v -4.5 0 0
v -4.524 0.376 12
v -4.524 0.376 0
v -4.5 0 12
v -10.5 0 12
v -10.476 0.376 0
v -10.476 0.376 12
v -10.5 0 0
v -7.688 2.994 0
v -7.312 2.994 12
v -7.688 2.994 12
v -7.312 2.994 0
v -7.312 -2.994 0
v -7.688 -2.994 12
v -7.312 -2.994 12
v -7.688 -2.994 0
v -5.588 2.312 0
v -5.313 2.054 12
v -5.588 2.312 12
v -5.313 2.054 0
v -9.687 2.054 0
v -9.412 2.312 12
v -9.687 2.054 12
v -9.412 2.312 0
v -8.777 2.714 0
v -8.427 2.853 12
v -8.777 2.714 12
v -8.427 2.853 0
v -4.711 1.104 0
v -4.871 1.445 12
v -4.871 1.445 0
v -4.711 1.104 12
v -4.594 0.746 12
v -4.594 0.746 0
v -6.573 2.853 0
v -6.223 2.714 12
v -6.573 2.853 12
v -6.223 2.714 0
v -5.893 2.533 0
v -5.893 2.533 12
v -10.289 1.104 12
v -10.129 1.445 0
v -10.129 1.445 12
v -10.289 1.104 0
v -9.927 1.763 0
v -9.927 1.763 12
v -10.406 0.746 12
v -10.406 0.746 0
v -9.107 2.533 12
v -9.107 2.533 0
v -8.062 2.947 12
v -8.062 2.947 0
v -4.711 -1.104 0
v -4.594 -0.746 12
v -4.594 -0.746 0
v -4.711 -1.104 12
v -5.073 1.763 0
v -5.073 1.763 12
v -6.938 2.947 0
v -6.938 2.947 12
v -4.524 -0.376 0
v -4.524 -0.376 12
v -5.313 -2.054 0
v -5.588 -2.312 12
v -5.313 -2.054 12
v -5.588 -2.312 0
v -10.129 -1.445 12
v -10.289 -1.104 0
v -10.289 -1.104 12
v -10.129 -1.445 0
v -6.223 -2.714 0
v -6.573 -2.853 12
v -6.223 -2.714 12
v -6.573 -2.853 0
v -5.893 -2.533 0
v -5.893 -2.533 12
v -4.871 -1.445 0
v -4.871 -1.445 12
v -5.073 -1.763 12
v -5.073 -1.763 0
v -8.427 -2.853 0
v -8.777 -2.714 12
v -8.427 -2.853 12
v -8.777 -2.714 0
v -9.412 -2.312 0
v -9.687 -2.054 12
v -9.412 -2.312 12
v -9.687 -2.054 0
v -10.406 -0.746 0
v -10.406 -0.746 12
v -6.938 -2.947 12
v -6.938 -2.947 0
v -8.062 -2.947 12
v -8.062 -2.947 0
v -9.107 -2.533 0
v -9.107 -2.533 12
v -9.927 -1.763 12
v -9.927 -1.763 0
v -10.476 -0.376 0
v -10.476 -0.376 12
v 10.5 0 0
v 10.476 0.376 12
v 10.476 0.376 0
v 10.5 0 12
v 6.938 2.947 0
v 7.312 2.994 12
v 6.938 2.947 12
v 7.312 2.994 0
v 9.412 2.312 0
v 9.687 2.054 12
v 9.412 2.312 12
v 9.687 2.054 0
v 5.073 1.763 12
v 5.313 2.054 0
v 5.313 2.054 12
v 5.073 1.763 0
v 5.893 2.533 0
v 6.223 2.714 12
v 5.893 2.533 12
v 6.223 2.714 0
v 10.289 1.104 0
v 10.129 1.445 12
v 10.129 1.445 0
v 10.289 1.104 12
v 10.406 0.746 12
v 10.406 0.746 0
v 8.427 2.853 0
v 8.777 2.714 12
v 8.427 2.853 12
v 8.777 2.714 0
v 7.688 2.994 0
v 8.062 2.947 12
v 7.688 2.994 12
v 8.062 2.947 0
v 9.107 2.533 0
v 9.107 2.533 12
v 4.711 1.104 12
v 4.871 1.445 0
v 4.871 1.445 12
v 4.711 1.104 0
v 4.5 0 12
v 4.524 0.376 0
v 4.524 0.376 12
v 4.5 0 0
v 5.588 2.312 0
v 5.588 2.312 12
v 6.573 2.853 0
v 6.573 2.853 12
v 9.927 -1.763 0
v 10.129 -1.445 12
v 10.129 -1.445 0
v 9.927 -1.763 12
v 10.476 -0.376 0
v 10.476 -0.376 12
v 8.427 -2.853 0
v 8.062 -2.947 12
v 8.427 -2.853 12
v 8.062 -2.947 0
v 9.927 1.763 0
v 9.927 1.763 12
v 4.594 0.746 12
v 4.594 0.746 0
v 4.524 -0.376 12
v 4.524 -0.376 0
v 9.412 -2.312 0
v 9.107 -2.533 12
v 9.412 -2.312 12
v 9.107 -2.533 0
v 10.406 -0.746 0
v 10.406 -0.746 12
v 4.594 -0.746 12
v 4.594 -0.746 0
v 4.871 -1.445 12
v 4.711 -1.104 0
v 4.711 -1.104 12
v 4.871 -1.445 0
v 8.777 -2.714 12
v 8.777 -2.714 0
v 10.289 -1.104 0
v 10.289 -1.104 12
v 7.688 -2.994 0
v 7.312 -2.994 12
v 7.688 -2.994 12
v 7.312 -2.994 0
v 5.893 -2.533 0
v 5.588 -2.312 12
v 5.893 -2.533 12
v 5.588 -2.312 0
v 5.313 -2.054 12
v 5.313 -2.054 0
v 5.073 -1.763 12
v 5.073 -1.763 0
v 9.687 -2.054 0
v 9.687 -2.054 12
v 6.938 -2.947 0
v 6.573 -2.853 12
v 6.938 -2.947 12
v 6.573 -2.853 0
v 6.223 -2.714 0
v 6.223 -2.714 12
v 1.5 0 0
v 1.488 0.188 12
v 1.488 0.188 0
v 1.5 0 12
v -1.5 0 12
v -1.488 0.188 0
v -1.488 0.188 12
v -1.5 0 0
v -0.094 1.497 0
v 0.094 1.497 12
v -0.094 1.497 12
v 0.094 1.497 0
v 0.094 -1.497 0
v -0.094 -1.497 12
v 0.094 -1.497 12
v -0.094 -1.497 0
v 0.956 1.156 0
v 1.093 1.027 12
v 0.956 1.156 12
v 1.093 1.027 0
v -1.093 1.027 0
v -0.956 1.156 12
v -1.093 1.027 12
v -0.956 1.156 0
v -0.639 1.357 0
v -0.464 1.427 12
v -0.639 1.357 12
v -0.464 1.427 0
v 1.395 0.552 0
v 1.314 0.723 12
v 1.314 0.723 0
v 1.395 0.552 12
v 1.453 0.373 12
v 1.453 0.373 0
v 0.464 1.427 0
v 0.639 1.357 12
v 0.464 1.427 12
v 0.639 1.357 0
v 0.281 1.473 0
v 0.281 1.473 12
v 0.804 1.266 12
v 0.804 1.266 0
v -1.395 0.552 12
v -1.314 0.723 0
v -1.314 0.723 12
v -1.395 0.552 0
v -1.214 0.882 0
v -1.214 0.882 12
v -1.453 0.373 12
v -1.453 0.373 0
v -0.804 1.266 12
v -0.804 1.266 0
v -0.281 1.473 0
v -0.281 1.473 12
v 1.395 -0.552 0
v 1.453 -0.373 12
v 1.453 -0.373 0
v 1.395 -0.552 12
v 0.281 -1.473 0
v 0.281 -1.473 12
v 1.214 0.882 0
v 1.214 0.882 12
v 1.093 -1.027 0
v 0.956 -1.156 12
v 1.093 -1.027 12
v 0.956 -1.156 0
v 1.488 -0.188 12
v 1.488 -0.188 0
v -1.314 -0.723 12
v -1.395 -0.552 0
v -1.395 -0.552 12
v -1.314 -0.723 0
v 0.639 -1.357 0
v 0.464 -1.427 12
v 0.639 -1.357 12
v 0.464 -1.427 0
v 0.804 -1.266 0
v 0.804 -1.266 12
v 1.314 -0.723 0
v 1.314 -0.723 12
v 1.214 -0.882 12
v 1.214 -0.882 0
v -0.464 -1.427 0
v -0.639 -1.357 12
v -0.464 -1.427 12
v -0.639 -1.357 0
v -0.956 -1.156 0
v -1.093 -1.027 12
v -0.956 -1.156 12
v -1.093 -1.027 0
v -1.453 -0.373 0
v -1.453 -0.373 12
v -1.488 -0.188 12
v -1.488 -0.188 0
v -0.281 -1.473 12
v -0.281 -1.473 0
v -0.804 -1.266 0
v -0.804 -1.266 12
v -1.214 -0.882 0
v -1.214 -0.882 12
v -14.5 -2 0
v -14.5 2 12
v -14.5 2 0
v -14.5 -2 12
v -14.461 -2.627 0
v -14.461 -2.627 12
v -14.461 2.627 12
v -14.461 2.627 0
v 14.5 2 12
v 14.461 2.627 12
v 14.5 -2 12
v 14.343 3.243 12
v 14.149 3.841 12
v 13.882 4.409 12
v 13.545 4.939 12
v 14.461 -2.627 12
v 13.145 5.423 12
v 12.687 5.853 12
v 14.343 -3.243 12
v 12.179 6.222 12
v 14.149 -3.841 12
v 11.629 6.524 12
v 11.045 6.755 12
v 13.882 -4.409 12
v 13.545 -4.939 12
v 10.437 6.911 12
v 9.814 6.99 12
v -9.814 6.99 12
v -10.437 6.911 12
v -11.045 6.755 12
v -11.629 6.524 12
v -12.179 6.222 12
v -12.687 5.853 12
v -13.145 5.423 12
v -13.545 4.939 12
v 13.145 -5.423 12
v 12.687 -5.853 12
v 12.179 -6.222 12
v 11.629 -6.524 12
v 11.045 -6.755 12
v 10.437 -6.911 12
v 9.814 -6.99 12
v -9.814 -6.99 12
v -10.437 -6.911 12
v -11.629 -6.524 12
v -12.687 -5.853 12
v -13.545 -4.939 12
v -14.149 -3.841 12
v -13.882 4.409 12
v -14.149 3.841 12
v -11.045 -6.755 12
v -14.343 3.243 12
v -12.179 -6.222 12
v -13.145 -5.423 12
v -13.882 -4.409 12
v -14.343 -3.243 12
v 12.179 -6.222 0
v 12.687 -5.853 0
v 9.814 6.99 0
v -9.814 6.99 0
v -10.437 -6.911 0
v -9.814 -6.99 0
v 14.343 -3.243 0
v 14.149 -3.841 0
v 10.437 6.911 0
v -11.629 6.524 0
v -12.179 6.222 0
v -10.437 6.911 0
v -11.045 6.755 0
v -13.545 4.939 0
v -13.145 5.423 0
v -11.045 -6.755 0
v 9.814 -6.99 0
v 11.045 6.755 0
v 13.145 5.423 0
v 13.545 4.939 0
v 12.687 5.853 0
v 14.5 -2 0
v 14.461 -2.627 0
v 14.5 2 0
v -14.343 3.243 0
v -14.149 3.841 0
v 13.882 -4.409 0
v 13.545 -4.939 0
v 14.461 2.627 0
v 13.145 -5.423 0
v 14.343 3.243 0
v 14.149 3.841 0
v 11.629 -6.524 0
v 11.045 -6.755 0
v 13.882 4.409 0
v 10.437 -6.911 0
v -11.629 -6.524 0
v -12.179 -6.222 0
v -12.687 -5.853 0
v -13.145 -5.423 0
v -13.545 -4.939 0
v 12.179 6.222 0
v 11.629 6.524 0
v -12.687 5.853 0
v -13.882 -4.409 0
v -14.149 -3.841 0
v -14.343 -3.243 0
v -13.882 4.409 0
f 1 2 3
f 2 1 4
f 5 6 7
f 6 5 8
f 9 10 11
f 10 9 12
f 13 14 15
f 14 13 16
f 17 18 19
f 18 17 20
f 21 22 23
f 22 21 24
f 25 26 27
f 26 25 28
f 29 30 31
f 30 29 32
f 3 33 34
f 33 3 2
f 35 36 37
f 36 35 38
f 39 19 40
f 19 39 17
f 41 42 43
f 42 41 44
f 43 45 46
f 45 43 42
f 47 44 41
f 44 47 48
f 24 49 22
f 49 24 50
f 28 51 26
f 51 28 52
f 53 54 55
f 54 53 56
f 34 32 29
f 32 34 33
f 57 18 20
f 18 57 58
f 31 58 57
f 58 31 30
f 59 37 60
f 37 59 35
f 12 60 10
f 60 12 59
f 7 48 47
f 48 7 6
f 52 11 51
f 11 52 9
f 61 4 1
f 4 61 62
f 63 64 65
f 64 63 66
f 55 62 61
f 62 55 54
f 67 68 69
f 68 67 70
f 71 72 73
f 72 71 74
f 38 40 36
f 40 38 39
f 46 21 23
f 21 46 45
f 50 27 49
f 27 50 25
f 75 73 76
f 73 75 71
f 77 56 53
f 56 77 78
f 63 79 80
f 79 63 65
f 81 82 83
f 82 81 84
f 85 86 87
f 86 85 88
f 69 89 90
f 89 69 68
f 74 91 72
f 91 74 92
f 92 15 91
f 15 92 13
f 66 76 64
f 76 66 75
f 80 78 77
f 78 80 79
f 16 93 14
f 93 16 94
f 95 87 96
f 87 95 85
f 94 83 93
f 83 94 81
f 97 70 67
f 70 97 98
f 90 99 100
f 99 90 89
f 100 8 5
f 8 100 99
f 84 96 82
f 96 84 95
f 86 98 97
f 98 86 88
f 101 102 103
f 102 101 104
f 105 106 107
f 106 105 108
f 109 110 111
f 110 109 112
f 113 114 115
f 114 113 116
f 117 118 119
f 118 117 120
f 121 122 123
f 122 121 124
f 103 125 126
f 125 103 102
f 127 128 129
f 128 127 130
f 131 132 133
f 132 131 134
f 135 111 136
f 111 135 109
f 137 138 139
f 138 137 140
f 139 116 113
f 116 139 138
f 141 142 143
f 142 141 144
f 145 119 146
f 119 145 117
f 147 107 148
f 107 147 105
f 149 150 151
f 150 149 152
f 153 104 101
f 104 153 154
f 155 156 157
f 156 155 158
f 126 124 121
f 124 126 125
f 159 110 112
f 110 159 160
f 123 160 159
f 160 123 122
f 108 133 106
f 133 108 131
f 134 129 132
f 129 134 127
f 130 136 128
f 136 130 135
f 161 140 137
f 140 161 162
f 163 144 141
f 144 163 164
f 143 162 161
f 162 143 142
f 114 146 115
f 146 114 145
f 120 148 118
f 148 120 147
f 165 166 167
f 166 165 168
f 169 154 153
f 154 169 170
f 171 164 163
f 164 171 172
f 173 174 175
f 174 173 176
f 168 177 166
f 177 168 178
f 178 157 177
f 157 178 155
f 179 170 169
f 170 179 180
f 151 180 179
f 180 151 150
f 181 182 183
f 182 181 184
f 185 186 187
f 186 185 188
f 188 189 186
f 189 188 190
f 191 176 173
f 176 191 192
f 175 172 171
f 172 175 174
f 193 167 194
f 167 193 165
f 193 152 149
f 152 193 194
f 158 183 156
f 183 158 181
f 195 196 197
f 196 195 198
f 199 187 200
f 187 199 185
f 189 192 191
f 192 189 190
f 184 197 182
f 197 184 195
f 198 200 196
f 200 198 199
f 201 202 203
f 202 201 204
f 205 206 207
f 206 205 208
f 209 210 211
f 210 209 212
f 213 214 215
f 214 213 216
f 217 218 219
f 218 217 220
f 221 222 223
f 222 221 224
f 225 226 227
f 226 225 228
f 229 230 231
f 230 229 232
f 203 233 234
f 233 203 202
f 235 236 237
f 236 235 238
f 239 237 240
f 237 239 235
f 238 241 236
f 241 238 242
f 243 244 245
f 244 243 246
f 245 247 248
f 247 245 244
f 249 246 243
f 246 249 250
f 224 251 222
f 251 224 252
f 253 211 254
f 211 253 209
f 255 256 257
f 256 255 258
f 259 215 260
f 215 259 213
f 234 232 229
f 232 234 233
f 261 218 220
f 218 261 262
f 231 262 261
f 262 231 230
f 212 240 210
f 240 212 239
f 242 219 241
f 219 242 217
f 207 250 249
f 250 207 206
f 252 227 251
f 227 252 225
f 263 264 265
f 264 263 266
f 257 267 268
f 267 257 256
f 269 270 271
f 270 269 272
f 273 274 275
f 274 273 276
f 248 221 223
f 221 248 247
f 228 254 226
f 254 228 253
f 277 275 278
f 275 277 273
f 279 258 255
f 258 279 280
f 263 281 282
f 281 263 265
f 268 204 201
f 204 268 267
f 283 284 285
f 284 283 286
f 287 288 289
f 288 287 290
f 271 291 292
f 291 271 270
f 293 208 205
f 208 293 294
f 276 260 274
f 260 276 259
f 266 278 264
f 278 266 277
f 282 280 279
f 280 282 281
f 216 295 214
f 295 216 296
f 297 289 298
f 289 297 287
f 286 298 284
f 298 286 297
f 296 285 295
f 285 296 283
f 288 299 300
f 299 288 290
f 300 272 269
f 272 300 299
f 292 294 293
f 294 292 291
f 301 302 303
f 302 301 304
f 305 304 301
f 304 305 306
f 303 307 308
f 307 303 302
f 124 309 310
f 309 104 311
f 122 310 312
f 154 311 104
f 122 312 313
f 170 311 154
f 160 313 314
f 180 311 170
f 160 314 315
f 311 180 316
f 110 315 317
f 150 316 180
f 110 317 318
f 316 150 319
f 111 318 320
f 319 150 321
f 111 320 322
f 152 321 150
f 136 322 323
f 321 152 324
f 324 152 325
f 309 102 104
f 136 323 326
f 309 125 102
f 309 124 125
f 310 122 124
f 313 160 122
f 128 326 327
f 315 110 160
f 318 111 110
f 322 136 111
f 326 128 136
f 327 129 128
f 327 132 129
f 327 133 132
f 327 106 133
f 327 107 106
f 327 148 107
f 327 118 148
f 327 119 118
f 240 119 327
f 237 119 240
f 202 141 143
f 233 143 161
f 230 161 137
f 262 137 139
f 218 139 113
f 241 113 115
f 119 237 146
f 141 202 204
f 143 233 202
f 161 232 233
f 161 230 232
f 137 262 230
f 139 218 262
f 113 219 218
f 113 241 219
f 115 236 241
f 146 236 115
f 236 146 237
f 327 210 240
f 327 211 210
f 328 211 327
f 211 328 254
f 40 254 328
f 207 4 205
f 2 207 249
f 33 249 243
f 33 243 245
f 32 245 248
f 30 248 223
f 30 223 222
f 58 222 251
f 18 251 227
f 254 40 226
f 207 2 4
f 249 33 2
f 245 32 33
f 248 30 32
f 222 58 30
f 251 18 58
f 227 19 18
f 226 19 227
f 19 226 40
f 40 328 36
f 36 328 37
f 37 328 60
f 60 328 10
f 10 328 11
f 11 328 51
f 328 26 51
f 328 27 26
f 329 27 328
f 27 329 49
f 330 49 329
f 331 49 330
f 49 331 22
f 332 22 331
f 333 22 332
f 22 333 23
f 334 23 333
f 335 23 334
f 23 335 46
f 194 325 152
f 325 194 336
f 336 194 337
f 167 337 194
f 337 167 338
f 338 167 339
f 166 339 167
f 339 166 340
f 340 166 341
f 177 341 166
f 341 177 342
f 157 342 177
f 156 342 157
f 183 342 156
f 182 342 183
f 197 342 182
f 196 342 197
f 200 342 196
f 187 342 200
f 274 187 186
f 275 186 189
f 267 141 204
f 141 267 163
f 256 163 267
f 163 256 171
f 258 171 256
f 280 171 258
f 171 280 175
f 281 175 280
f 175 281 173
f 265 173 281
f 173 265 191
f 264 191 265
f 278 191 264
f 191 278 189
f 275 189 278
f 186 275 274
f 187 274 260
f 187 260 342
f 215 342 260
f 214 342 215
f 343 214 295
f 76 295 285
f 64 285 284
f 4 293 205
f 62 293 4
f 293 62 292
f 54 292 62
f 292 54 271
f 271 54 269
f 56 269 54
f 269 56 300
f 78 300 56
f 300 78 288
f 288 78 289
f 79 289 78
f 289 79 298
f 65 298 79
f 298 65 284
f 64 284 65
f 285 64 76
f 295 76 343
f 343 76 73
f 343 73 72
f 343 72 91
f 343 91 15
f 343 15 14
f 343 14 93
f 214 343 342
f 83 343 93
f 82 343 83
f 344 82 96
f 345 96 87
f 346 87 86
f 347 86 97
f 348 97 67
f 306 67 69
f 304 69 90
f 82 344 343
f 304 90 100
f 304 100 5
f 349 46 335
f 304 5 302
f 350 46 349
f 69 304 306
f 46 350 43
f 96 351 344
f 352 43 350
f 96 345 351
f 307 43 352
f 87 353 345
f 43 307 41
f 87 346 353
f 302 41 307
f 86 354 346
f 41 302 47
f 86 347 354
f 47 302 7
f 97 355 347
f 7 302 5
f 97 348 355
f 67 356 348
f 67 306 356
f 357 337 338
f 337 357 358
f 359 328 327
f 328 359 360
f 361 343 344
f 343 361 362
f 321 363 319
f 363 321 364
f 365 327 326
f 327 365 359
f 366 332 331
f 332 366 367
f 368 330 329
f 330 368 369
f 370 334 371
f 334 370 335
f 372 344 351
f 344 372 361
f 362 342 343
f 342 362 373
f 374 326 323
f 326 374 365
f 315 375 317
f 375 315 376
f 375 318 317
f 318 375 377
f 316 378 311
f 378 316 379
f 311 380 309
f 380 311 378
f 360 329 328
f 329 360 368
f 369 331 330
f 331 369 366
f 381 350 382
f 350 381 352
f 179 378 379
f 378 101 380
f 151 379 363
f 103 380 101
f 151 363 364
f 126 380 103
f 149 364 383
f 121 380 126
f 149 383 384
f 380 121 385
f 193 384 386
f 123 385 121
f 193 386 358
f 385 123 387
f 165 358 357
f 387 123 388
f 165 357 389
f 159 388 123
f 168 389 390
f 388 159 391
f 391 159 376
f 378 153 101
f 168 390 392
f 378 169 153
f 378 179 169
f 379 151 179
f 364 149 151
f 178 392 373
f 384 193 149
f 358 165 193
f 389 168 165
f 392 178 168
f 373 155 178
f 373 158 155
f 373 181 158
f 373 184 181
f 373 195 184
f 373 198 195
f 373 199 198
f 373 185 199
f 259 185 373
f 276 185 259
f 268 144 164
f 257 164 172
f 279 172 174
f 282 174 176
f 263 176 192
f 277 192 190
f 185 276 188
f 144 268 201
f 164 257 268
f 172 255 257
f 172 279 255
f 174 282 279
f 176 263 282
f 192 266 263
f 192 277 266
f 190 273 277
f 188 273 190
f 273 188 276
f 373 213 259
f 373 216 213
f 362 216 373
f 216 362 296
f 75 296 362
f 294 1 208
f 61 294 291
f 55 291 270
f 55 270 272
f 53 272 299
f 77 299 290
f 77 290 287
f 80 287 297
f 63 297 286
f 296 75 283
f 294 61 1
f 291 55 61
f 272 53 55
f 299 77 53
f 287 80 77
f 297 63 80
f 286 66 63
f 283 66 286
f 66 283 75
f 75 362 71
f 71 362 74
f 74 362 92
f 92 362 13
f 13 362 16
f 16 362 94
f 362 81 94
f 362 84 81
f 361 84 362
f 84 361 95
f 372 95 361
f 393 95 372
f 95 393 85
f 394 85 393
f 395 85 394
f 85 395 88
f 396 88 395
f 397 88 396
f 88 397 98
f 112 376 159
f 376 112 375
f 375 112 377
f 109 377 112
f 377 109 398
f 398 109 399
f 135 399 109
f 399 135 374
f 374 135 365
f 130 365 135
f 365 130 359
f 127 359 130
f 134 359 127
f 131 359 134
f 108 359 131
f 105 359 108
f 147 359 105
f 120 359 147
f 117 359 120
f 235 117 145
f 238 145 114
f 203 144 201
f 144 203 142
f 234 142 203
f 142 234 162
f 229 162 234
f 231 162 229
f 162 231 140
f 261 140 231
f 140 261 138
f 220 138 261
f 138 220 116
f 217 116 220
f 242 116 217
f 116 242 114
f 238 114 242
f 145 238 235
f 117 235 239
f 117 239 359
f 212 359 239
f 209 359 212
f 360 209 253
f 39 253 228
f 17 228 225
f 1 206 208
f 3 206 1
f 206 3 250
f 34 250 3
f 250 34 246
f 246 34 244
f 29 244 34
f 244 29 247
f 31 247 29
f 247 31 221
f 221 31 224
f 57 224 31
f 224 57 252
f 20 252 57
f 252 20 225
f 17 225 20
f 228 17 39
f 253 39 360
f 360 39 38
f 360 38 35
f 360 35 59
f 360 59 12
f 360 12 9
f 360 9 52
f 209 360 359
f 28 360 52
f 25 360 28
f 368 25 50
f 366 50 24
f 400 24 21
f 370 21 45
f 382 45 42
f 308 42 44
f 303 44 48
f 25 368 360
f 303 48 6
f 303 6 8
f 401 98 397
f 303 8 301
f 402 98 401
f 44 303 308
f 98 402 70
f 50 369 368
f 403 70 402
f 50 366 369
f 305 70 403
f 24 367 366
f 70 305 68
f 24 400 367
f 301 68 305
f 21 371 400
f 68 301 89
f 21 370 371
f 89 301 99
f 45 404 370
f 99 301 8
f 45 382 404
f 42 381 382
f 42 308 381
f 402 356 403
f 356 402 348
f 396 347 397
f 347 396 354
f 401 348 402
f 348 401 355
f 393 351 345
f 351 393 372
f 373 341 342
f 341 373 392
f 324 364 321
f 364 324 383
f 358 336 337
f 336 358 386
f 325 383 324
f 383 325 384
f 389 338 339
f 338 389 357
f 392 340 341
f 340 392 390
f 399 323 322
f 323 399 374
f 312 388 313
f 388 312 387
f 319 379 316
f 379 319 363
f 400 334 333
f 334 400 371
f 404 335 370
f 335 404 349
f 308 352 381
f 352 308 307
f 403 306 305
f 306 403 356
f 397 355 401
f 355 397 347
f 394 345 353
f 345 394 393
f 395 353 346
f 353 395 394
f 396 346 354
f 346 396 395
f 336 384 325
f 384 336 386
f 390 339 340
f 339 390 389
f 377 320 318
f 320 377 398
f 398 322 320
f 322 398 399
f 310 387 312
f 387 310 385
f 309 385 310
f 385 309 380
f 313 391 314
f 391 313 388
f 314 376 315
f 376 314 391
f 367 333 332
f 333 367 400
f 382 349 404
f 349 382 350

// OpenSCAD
$fn = 50;


difference() {
	union() {
		translate(v = [0, 0, 0]) {
			rotate(a = [0, 0, 0]) {
				hull() {
					translate(v = [-9.5000000000, 2.0000000000, 0]) {
						rotate(a = [0, 0, 0]) {
							translate(v = [0, 0, 0]) {
								rotate(a = [0, 0, 0]) {
									cylinder(h = 12, r = 5);
								}
							}
						}
					}
					translate(v = [9.5000000000, 2.0000000000, 0]) {
						rotate(a = [0, 0, 0]) {
							translate(v = [0, 0, 0]) {
								rotate(a = [0, 0, 0]) {
									cylinder(h = 12, r = 5);
								}
							}
						}
					}
					translate(v = [-9.5000000000, -2.0000000000, 0]) {
						rotate(a = [0, 0, 0]) {
							translate(v = [0, 0, 0]) {
								rotate(a = [0, 0, 0]) {
									cylinder(h = 12, r = 5);
								}
							}
						}
					}
					translate(v = [9.5000000000, -2.0000000000, 0]) {
						rotate(a = [0, 0, 0]) {
							translate(v = [0, 0, 0]) {
								rotate(a = [0, 0, 0]) {
									cylinder(h = 12, r = 5);
								}
							}
						}
					}
				}
			}
		}
	}
	union() {
		translate(v = [-7.5000000000, 0.0000000000, 0]) {
			rotate(a = [0, 0, 0]) {
				translate(v = [0, 0, -50]) {
					rotate(a = [0, 0, 0]) {
						cylinder(h = 100, r = 3.0000000000);
					}
				}
			}
		}
		translate(v = [7.5000000000, 0.0000000000, 0]) {
			rotate(a = [0, 0, 0]) {
				translate(v = [0, 0, -50]) {
					rotate(a = [0, 0, 0]) {
						cylinder(h = 100, r = 3.0000000000);
					}
				}
			}
		}
		translate(v = [-7.5000000000, 0.0000000000, 0]) {
			rotate(a = [0, 0, 0]) {
				translate(v = [0, 0, -50]) {
					rotate(a = [0, 0, 0]) {
						cylinder(h = 100, r = 1.5000000000);
					}
				}
			}
		}
		translate(v = [0.0000000000, 0.0000000000, 0]) {
			rotate(a = [0, 0, 0]) {
				translate(v = [0, 0, -50]) {
					rotate(a = [0, 0, 0]) {
						cylinder(h = 100, r = 1.5000000000);
					}
				}
			}
		}
		translate(v = [7.5000000000, 0.0000000000, 0]) {
			rotate(a = [0, 0, 0]) {
				translate(v = [0, 0, -50]) {
					rotate(a = [0, 0, 0]) {
						cylinder(h = 100, r = 1.5000000000);
					}
				}
			}
		}
	}
}
